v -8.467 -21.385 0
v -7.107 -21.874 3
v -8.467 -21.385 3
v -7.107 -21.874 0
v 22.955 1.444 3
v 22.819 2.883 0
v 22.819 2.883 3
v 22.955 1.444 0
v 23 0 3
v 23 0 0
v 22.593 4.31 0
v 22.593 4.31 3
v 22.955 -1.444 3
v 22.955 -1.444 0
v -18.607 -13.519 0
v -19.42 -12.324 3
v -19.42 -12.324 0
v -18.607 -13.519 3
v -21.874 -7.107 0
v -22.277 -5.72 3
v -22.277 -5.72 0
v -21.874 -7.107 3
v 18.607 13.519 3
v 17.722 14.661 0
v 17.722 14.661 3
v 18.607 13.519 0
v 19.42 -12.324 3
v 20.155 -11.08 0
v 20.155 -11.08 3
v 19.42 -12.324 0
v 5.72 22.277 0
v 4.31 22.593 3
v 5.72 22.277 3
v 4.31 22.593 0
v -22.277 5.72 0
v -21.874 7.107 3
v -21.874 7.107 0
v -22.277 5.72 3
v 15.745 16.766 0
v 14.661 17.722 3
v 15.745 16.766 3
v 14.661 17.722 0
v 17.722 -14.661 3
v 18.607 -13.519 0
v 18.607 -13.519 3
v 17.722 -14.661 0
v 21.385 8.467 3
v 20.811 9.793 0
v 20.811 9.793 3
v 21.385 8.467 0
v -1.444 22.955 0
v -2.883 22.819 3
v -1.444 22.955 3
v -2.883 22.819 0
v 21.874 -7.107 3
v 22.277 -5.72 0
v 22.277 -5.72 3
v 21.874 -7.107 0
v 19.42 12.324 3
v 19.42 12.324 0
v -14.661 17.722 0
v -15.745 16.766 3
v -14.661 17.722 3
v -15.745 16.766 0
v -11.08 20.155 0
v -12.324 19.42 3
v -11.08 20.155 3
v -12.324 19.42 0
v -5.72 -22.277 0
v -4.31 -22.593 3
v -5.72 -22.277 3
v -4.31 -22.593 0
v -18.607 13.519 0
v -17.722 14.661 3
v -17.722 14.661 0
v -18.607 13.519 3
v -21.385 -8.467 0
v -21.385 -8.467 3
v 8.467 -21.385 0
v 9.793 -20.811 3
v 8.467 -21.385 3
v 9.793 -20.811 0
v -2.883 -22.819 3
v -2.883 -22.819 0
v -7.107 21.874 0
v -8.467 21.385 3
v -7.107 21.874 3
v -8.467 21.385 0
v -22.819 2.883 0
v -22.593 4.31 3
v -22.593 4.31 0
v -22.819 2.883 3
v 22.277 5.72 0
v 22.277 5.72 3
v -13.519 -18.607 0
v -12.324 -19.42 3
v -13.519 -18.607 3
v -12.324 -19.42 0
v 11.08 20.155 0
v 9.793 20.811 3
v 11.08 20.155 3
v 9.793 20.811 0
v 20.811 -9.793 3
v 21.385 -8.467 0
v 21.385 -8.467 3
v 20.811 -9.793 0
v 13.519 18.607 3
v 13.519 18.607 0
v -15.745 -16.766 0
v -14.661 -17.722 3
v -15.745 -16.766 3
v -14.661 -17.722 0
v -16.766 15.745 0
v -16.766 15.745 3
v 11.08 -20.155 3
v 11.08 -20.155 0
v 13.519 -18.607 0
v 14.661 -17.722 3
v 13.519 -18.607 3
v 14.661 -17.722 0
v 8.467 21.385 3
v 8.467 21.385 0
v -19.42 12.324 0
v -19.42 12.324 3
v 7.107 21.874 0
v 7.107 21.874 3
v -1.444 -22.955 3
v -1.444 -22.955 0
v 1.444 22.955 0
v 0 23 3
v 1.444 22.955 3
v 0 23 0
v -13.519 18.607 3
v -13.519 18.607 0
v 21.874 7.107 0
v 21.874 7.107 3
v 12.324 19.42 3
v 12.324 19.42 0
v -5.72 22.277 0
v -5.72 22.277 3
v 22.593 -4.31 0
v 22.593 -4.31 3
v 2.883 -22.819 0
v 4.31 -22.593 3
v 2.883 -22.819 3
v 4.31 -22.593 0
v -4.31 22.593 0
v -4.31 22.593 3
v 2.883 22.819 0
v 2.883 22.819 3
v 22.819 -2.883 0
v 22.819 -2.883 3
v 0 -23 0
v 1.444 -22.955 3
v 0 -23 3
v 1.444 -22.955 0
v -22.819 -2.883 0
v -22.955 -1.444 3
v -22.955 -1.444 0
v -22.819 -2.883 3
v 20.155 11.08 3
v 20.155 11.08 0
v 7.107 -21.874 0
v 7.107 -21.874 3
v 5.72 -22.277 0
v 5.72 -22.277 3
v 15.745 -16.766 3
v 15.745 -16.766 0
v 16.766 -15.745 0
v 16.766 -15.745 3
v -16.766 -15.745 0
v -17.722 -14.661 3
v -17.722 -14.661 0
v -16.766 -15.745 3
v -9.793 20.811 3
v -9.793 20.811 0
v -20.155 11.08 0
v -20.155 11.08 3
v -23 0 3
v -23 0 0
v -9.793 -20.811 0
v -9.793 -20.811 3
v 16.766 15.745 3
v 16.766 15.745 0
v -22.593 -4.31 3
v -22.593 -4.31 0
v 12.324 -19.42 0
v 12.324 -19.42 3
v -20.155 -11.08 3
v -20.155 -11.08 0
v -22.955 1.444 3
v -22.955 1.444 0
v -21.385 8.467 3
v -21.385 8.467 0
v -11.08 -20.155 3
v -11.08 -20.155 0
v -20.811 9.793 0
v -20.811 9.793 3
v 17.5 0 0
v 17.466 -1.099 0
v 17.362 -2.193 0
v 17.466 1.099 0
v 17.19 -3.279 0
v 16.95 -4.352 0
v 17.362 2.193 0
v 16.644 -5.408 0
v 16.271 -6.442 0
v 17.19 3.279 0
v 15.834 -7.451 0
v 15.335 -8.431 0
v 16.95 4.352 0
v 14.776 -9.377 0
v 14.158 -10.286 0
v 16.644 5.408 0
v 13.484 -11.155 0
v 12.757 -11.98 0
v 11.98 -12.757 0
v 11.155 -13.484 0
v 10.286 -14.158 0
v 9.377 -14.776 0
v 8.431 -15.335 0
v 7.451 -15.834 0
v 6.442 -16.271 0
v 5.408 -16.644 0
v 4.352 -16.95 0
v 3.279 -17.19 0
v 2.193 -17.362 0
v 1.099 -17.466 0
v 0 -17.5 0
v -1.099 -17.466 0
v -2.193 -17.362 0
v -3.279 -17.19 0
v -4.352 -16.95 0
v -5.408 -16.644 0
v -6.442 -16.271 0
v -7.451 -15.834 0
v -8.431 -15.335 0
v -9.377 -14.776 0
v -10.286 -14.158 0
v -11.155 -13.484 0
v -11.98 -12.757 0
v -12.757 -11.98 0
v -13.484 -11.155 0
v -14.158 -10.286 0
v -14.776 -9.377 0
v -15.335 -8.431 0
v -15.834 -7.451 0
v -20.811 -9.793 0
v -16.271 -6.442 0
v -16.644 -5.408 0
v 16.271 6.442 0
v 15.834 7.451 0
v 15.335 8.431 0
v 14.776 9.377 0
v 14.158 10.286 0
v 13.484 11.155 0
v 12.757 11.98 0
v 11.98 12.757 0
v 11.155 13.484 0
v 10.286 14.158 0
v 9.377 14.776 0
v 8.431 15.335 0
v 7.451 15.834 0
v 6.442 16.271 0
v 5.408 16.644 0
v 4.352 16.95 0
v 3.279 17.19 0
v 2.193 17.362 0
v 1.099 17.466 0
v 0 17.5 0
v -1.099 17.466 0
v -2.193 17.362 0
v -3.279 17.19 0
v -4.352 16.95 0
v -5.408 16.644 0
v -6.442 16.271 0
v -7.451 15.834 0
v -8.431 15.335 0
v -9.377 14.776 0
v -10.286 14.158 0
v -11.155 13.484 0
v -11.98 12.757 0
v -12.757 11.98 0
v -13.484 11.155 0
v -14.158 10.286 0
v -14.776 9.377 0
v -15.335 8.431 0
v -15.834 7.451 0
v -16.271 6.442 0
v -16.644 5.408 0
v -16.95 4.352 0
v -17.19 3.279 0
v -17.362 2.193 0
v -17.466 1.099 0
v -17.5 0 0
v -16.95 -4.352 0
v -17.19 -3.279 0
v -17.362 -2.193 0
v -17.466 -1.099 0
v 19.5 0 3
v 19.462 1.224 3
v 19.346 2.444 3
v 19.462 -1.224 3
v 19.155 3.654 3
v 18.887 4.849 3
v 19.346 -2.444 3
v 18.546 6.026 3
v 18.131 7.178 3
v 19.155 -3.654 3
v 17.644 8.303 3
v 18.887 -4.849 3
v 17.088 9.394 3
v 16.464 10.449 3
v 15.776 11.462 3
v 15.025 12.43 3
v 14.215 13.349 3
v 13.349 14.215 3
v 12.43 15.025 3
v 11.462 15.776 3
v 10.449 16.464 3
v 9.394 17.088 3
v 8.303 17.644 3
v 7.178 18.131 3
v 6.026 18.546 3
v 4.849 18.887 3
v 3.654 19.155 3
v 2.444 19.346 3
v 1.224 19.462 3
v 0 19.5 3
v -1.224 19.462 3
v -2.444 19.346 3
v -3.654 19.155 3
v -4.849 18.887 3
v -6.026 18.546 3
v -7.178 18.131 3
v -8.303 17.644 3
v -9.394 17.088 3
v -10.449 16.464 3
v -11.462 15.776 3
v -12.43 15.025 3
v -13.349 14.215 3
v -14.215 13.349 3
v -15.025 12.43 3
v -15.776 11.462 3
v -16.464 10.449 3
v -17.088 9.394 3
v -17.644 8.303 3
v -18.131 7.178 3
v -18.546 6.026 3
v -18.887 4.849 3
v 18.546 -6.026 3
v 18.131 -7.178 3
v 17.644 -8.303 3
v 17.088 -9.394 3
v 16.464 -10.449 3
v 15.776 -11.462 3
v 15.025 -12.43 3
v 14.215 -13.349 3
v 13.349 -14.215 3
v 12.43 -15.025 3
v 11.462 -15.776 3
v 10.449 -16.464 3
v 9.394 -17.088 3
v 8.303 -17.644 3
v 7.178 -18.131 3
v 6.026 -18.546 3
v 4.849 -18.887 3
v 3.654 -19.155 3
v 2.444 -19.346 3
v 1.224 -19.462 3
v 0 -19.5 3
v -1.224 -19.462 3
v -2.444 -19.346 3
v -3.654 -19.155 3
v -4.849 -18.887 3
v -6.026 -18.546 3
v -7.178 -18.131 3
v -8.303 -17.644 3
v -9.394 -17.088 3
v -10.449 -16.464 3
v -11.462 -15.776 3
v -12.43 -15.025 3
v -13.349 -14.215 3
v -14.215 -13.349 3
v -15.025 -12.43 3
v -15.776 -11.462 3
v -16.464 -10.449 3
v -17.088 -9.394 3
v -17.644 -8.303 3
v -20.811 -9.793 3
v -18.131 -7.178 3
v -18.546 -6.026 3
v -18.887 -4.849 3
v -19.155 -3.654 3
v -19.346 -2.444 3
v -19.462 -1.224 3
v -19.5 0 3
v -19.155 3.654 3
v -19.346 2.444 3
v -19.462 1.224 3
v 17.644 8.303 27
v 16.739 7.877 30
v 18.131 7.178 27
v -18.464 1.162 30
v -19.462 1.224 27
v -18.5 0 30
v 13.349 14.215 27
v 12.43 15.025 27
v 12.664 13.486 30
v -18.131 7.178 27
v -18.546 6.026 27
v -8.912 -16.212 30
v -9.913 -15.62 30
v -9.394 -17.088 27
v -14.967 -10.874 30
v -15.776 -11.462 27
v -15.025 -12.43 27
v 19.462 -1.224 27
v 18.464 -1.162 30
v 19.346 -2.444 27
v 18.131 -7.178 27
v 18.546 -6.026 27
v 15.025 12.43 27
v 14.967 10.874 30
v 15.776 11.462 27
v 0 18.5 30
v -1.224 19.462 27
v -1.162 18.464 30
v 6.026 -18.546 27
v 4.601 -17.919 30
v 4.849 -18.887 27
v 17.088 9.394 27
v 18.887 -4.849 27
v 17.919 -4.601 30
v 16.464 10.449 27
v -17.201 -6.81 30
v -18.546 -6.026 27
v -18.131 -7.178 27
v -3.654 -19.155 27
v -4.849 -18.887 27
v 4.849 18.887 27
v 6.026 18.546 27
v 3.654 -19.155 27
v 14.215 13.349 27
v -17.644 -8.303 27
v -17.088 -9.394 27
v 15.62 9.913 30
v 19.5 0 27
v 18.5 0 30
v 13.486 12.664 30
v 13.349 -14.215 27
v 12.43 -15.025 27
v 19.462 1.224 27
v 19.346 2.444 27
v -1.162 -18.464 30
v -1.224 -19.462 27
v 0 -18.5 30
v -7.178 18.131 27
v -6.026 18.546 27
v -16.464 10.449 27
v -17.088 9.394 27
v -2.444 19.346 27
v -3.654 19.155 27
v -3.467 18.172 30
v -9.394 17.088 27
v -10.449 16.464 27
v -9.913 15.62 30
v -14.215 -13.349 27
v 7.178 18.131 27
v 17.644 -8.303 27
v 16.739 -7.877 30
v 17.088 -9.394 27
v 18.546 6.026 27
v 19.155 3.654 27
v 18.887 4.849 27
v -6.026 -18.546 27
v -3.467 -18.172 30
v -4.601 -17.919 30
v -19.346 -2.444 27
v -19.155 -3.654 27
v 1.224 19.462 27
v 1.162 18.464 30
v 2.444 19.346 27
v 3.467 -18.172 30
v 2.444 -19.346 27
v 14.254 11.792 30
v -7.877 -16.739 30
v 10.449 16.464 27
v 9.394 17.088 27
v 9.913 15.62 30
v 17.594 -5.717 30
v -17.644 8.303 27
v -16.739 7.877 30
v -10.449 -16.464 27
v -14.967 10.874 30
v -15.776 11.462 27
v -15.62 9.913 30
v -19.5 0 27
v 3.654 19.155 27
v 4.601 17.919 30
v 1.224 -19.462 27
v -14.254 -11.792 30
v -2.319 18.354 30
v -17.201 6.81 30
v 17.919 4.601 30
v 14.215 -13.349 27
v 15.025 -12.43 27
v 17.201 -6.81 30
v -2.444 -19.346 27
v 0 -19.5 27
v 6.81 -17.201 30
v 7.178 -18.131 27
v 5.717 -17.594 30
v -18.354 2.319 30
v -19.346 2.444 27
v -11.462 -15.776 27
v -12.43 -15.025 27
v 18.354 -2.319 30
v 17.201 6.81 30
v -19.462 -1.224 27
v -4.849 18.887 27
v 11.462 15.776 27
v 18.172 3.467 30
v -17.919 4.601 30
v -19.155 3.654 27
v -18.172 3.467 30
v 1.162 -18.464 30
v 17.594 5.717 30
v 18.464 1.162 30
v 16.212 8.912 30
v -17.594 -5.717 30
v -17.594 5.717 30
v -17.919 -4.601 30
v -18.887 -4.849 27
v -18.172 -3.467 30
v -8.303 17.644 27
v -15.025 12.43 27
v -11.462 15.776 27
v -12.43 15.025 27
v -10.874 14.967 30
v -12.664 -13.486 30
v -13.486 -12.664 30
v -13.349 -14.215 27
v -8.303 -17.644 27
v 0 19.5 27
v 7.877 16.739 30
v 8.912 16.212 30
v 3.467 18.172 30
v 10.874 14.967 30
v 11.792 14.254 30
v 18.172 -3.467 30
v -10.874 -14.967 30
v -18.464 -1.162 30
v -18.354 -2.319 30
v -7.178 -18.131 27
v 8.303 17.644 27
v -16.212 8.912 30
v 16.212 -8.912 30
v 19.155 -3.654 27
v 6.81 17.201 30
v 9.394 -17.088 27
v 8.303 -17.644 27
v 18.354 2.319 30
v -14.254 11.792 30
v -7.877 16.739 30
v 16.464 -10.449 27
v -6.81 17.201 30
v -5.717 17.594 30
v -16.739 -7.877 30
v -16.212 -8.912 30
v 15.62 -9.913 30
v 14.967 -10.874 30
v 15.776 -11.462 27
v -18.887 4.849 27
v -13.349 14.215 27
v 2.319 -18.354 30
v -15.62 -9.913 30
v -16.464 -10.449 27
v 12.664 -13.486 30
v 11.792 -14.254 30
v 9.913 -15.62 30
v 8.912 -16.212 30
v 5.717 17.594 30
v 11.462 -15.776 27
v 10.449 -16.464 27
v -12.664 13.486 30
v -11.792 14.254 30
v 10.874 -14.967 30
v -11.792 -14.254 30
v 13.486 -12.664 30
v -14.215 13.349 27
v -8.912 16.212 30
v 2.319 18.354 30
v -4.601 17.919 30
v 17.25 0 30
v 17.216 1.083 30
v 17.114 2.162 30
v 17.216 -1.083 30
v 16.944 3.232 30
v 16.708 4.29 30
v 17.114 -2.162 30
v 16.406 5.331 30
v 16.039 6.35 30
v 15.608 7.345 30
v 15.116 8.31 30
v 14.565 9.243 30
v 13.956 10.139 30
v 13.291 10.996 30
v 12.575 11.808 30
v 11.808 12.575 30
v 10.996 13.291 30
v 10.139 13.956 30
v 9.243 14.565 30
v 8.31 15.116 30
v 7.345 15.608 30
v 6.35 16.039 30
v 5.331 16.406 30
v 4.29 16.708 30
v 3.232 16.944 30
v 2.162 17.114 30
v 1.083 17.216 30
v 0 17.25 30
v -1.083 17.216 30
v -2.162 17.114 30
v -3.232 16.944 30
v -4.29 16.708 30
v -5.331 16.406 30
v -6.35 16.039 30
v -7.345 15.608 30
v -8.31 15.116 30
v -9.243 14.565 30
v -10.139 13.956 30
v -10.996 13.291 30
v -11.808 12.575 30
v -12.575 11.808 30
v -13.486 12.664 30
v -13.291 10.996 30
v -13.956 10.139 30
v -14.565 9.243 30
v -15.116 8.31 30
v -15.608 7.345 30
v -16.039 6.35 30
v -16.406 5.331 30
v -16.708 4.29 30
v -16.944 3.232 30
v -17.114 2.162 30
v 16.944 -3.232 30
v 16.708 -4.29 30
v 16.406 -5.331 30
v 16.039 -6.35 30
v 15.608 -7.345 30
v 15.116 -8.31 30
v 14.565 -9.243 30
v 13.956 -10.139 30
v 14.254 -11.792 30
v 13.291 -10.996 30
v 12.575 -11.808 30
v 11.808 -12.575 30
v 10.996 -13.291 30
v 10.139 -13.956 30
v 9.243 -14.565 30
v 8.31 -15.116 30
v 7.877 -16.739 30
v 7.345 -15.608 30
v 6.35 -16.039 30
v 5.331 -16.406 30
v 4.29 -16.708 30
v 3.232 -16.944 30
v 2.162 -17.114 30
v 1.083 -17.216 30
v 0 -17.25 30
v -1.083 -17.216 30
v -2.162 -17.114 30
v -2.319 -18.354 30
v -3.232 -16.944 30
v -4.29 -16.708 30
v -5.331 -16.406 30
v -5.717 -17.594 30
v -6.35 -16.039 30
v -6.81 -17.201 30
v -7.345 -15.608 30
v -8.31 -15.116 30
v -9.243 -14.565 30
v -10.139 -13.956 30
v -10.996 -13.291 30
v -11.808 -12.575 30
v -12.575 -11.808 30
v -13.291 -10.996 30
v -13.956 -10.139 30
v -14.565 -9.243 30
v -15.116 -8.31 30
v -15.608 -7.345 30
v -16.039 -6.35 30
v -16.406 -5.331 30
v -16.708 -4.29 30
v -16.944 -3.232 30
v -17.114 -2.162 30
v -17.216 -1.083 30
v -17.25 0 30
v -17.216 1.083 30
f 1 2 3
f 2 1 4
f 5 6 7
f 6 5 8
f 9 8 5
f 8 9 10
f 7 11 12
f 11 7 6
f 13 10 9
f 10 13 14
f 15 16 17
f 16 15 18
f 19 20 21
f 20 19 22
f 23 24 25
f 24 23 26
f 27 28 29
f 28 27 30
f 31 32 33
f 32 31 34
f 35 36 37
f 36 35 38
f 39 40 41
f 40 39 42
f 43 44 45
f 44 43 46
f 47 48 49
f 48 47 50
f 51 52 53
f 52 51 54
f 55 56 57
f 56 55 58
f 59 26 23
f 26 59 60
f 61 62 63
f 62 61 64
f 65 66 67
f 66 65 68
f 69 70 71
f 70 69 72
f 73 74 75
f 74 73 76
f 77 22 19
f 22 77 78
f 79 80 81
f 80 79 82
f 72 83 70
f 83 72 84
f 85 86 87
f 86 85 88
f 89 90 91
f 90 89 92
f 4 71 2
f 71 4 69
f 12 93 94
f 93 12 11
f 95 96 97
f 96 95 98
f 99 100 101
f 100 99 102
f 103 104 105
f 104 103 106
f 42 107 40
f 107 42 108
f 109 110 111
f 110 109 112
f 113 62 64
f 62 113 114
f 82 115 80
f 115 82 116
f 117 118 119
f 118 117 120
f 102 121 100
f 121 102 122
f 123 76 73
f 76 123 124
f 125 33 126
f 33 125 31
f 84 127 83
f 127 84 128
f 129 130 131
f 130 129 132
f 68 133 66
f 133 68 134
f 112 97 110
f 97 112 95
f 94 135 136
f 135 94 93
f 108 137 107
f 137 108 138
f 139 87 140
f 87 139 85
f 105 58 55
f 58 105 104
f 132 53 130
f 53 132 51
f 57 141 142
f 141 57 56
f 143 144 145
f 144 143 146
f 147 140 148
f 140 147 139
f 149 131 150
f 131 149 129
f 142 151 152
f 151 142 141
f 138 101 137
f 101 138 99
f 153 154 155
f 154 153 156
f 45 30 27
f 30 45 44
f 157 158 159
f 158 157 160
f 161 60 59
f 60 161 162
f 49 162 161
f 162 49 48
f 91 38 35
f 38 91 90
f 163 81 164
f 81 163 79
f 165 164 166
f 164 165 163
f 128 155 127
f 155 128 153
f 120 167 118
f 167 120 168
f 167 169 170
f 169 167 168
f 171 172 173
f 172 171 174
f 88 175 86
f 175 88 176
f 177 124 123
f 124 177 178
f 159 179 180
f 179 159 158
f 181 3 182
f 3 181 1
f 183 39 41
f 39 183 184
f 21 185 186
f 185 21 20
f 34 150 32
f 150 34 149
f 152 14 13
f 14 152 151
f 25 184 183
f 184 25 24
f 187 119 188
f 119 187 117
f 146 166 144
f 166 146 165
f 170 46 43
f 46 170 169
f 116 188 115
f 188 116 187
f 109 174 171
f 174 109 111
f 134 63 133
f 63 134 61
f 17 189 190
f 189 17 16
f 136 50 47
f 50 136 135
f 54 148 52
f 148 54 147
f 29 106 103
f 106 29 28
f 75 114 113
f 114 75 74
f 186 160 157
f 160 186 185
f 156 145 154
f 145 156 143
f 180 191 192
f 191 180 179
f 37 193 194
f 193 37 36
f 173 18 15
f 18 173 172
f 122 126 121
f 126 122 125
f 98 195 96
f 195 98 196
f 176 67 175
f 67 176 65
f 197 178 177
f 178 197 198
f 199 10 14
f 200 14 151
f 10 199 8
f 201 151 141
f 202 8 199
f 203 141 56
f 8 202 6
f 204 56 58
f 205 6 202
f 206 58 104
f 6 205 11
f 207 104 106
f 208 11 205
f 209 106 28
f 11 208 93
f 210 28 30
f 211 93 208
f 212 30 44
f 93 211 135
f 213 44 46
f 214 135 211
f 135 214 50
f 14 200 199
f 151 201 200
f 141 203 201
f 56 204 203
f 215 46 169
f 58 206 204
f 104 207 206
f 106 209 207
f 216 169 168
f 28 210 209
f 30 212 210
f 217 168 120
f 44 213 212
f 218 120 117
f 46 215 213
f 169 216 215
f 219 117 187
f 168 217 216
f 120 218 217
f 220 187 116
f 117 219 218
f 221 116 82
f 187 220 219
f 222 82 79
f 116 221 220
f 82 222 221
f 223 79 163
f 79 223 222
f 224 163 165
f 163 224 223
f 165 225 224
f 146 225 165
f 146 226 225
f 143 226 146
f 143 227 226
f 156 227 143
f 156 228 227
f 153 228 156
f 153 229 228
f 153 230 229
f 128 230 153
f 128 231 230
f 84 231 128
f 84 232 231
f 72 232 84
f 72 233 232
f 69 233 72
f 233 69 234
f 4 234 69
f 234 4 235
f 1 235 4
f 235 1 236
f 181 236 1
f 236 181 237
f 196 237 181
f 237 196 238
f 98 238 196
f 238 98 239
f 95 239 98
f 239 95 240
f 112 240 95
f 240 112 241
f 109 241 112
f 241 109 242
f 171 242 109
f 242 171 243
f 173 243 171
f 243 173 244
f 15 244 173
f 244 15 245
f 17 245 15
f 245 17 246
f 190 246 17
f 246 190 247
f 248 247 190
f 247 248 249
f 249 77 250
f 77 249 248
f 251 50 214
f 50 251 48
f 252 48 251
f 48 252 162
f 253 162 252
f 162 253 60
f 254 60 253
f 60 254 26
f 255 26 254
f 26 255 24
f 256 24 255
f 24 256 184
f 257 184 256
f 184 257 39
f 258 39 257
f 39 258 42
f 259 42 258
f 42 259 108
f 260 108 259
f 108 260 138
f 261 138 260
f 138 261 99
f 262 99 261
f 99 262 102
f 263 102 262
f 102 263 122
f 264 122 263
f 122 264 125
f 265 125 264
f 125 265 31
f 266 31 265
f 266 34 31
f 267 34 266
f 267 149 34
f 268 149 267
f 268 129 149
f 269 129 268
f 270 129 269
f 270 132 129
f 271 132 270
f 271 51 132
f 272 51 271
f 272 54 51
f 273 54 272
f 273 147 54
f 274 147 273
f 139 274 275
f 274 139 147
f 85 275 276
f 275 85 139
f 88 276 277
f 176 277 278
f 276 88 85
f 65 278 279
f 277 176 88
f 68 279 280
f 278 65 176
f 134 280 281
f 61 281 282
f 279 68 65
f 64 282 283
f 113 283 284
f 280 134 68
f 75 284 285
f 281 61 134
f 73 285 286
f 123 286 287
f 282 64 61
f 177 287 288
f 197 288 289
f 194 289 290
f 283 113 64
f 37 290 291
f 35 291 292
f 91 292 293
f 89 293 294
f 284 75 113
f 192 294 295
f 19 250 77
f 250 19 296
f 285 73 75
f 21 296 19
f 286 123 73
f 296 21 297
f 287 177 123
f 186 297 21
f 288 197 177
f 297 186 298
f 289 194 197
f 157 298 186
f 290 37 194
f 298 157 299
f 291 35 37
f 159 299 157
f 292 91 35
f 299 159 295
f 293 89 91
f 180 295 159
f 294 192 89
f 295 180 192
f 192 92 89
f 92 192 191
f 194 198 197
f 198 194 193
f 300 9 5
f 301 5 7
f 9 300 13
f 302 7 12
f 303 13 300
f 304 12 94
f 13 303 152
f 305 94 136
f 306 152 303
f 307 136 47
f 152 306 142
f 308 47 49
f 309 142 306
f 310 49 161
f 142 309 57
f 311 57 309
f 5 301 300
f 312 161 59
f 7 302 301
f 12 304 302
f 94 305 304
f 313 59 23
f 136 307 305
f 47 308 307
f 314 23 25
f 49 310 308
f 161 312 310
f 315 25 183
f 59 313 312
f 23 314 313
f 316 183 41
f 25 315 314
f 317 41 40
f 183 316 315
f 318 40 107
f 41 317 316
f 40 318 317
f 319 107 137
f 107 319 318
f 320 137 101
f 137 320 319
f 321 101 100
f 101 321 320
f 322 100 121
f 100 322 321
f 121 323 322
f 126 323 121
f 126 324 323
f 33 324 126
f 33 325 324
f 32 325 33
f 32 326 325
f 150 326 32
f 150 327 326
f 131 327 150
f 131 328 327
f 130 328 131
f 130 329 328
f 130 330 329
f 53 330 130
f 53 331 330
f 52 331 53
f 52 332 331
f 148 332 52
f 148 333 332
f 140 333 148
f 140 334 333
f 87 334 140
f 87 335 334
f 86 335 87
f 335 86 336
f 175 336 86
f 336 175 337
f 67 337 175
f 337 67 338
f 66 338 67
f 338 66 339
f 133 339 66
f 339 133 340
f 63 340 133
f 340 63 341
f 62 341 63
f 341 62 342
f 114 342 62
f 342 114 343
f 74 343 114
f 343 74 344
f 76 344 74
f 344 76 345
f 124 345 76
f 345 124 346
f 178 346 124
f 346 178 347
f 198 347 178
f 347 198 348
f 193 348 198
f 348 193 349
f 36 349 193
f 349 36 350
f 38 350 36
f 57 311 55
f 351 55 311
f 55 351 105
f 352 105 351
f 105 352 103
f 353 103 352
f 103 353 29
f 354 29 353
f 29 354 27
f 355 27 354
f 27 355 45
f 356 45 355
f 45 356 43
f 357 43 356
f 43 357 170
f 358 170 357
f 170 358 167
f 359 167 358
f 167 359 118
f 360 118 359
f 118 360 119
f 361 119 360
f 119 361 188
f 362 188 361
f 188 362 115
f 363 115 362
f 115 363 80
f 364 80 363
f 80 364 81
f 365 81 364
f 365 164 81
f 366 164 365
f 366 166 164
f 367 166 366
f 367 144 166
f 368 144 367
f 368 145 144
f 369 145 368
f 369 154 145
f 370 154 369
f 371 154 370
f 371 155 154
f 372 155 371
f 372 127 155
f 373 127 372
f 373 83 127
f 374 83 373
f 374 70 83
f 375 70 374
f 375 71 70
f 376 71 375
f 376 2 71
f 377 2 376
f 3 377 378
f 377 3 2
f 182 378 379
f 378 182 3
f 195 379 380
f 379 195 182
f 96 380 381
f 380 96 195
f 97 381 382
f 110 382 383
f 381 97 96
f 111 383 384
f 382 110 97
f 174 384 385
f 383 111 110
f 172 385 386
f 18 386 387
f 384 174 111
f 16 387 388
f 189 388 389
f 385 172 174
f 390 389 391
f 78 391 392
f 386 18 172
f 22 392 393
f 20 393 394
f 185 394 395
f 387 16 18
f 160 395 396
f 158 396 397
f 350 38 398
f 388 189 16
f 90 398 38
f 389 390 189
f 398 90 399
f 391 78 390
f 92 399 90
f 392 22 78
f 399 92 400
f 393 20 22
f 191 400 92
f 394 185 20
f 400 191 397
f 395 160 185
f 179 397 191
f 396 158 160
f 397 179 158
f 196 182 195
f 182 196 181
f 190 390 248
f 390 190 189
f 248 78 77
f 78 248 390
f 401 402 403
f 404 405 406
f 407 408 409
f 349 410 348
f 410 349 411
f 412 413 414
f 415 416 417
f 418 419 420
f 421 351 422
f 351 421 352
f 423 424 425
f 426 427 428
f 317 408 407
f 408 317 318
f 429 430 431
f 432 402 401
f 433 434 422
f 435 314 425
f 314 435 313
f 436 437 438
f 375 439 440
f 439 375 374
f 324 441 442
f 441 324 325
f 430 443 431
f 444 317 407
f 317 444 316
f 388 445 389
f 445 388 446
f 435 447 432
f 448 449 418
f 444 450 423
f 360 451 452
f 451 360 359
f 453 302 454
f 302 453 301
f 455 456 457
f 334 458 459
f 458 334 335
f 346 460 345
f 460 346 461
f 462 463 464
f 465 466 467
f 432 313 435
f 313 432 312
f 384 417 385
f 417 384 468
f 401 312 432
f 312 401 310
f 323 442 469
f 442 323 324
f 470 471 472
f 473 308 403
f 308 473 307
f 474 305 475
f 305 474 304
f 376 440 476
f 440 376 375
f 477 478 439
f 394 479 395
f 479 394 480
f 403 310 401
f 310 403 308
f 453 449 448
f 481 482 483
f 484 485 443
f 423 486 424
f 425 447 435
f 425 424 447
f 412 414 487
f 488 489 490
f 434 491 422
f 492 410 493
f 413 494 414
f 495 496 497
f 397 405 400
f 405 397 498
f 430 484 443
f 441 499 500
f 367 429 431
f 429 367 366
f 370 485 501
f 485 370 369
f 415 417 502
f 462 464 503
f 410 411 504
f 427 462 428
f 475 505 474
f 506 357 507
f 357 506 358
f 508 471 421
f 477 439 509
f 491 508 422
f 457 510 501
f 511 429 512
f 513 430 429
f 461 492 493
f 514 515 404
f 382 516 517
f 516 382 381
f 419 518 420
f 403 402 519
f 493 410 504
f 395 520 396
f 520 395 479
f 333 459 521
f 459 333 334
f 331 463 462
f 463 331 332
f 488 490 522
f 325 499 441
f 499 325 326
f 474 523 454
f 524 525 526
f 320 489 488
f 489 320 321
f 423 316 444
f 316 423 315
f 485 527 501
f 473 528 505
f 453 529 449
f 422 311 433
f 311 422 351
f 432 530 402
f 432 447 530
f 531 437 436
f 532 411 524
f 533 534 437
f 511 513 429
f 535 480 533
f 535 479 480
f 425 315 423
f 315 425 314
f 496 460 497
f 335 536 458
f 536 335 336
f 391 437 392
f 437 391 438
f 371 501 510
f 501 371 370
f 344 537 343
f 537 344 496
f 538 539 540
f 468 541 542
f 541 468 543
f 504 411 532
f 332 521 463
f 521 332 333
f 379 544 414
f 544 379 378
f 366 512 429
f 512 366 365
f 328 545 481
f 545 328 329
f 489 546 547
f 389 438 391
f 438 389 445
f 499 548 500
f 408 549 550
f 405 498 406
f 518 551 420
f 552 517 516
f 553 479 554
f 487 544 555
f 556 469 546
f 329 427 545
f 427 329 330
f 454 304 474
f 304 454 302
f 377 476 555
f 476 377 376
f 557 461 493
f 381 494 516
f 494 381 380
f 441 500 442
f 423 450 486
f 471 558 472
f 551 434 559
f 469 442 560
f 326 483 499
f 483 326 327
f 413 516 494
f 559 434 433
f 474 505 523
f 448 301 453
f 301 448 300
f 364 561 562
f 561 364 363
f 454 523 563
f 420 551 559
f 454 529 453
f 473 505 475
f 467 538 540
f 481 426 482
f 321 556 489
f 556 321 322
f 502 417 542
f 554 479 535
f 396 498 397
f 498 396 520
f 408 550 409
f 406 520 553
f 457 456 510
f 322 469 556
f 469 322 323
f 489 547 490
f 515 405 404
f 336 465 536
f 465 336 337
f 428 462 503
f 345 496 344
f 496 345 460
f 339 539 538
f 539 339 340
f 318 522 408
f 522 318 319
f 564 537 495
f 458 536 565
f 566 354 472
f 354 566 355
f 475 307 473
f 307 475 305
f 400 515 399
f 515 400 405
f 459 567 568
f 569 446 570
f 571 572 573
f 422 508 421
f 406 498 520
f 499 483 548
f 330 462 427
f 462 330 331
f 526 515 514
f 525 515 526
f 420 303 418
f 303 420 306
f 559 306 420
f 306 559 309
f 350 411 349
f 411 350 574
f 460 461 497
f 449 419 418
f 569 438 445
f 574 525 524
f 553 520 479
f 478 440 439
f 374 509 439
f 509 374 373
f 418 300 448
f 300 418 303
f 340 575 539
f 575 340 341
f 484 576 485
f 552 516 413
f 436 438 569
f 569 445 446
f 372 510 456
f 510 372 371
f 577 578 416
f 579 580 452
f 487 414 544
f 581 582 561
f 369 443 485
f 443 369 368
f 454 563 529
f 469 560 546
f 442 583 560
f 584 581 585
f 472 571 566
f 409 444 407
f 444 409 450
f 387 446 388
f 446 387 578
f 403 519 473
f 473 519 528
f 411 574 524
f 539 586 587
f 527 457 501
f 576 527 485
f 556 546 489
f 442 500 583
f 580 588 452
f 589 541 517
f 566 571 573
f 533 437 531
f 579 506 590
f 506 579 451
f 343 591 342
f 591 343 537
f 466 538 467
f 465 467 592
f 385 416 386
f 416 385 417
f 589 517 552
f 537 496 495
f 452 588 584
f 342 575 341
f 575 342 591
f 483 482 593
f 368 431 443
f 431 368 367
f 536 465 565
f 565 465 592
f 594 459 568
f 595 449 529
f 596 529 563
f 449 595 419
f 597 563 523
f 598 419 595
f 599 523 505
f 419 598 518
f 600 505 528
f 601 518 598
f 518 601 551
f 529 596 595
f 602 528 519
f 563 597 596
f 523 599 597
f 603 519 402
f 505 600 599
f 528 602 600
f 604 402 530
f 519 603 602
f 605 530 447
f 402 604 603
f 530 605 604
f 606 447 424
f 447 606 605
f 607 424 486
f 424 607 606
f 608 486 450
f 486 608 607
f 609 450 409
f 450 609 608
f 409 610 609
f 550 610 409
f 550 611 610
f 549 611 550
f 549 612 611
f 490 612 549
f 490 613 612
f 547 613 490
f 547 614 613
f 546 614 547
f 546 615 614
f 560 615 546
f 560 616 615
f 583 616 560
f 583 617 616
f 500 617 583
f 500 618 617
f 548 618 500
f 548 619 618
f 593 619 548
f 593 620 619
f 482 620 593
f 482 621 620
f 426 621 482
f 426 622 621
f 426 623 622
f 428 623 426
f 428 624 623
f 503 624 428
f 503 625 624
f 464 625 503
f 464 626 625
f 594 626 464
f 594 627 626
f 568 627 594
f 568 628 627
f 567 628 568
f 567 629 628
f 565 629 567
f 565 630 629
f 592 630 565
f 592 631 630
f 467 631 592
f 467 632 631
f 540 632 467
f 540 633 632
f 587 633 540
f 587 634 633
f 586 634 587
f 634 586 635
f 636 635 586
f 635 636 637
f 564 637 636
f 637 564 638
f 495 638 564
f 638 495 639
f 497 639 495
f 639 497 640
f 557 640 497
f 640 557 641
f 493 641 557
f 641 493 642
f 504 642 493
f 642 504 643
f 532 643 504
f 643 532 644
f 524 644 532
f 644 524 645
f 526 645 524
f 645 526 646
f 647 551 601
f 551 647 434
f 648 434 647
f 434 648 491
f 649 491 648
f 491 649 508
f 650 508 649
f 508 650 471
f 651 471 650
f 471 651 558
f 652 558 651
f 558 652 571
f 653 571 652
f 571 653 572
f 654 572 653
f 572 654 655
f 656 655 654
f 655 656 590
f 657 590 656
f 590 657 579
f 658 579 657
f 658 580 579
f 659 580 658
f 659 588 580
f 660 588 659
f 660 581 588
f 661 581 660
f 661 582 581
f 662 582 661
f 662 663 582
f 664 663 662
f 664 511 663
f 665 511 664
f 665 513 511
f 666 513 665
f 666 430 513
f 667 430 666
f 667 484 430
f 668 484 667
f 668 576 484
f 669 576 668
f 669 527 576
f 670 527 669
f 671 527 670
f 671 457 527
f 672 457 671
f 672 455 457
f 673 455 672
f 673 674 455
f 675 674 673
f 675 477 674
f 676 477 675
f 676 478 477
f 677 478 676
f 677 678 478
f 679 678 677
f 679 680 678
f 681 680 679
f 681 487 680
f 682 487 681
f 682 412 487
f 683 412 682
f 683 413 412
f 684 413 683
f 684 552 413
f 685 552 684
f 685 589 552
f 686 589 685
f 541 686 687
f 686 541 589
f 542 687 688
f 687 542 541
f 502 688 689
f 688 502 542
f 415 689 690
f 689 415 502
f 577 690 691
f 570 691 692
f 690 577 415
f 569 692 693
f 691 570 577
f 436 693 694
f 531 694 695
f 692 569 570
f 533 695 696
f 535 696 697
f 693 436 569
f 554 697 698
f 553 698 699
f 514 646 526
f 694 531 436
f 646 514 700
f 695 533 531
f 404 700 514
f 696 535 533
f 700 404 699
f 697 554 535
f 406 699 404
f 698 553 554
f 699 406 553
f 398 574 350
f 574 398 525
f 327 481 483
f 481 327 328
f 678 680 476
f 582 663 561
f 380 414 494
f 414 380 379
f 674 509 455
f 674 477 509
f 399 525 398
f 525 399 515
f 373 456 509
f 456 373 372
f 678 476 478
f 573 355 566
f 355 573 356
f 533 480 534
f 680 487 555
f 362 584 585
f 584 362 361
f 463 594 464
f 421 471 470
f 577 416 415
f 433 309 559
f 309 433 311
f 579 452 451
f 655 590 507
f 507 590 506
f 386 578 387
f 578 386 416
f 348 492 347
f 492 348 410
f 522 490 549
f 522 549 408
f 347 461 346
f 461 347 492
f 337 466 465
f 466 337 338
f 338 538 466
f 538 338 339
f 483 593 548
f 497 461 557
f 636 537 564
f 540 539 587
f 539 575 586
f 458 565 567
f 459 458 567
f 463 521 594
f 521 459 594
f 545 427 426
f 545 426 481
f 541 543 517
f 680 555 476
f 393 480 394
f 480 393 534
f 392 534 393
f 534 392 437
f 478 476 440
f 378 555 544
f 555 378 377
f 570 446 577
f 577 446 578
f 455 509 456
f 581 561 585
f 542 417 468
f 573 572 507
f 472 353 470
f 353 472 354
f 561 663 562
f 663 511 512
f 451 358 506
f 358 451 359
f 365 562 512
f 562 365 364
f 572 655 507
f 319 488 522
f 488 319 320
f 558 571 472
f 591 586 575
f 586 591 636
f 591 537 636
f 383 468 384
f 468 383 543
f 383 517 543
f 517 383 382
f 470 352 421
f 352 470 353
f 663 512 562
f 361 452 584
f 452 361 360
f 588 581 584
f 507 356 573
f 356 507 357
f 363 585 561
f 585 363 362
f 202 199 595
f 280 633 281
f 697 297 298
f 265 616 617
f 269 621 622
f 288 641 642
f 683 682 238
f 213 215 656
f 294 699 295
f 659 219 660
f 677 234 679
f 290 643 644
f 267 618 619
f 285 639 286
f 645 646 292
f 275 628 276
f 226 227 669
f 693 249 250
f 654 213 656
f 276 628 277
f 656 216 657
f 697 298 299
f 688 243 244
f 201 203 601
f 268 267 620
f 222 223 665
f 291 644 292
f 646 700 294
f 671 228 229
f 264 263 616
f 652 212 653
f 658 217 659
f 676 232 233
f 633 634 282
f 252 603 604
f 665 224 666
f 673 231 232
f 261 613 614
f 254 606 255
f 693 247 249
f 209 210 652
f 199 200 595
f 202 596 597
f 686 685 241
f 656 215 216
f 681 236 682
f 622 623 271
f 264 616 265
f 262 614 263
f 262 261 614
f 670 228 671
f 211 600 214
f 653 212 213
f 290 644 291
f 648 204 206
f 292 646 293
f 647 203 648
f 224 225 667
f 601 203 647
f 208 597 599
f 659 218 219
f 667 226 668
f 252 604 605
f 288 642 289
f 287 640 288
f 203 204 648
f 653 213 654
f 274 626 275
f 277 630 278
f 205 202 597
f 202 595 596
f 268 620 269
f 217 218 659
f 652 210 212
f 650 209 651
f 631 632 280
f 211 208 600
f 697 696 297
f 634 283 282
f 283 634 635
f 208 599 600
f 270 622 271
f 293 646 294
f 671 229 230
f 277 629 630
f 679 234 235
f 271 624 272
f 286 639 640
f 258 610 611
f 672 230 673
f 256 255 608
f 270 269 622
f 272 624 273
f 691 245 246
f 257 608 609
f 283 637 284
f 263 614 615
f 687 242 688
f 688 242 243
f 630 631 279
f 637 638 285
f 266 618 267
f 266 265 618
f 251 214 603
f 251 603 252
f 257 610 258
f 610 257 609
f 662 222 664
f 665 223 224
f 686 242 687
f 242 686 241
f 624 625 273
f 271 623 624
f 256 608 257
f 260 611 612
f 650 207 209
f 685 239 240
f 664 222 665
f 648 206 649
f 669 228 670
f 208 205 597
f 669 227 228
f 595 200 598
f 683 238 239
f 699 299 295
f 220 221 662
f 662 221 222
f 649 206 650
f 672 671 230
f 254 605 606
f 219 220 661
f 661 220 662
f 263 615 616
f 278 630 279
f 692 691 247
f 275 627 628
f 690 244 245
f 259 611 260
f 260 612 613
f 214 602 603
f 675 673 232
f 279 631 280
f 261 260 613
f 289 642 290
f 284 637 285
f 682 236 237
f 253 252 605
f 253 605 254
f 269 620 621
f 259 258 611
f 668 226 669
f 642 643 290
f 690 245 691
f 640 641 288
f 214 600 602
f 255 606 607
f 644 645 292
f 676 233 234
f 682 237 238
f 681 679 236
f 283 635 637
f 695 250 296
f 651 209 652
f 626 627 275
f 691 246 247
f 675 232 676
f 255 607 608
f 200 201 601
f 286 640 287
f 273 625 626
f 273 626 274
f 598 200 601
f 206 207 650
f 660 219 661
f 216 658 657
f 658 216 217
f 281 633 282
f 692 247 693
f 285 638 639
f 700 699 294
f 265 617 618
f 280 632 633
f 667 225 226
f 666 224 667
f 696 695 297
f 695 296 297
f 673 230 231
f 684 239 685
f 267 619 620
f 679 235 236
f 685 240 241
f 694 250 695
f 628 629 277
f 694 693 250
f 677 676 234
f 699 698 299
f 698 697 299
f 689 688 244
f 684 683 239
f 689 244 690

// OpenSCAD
/* Hose Adapter
 * Adapt between vacuum cleaner end and flexible hose
 */

$fn=100;

hose_id=39;
vacuum_od=35;
length=30;
collar_od=(hose_id+7);
collar_height=3;


module vacuum(length) {
    cylinder(h=length, d1=vacuum_od, d2=vacuum_od-0.5);
}

module hose(length) {
    hull() {
        union() {
            cylinder(h=length-3, d=hose_id);
            cylinder(h=length, d=hose_id-2);
        }
    }
}

module collar() {
    cylinder(h=collar_height, d=collar_od);
}


module adapter(length) {
    difference() {
        union() {
            collar();
            hose(length);
        }
        vacuum(length);
    }
}

adapter(length);
